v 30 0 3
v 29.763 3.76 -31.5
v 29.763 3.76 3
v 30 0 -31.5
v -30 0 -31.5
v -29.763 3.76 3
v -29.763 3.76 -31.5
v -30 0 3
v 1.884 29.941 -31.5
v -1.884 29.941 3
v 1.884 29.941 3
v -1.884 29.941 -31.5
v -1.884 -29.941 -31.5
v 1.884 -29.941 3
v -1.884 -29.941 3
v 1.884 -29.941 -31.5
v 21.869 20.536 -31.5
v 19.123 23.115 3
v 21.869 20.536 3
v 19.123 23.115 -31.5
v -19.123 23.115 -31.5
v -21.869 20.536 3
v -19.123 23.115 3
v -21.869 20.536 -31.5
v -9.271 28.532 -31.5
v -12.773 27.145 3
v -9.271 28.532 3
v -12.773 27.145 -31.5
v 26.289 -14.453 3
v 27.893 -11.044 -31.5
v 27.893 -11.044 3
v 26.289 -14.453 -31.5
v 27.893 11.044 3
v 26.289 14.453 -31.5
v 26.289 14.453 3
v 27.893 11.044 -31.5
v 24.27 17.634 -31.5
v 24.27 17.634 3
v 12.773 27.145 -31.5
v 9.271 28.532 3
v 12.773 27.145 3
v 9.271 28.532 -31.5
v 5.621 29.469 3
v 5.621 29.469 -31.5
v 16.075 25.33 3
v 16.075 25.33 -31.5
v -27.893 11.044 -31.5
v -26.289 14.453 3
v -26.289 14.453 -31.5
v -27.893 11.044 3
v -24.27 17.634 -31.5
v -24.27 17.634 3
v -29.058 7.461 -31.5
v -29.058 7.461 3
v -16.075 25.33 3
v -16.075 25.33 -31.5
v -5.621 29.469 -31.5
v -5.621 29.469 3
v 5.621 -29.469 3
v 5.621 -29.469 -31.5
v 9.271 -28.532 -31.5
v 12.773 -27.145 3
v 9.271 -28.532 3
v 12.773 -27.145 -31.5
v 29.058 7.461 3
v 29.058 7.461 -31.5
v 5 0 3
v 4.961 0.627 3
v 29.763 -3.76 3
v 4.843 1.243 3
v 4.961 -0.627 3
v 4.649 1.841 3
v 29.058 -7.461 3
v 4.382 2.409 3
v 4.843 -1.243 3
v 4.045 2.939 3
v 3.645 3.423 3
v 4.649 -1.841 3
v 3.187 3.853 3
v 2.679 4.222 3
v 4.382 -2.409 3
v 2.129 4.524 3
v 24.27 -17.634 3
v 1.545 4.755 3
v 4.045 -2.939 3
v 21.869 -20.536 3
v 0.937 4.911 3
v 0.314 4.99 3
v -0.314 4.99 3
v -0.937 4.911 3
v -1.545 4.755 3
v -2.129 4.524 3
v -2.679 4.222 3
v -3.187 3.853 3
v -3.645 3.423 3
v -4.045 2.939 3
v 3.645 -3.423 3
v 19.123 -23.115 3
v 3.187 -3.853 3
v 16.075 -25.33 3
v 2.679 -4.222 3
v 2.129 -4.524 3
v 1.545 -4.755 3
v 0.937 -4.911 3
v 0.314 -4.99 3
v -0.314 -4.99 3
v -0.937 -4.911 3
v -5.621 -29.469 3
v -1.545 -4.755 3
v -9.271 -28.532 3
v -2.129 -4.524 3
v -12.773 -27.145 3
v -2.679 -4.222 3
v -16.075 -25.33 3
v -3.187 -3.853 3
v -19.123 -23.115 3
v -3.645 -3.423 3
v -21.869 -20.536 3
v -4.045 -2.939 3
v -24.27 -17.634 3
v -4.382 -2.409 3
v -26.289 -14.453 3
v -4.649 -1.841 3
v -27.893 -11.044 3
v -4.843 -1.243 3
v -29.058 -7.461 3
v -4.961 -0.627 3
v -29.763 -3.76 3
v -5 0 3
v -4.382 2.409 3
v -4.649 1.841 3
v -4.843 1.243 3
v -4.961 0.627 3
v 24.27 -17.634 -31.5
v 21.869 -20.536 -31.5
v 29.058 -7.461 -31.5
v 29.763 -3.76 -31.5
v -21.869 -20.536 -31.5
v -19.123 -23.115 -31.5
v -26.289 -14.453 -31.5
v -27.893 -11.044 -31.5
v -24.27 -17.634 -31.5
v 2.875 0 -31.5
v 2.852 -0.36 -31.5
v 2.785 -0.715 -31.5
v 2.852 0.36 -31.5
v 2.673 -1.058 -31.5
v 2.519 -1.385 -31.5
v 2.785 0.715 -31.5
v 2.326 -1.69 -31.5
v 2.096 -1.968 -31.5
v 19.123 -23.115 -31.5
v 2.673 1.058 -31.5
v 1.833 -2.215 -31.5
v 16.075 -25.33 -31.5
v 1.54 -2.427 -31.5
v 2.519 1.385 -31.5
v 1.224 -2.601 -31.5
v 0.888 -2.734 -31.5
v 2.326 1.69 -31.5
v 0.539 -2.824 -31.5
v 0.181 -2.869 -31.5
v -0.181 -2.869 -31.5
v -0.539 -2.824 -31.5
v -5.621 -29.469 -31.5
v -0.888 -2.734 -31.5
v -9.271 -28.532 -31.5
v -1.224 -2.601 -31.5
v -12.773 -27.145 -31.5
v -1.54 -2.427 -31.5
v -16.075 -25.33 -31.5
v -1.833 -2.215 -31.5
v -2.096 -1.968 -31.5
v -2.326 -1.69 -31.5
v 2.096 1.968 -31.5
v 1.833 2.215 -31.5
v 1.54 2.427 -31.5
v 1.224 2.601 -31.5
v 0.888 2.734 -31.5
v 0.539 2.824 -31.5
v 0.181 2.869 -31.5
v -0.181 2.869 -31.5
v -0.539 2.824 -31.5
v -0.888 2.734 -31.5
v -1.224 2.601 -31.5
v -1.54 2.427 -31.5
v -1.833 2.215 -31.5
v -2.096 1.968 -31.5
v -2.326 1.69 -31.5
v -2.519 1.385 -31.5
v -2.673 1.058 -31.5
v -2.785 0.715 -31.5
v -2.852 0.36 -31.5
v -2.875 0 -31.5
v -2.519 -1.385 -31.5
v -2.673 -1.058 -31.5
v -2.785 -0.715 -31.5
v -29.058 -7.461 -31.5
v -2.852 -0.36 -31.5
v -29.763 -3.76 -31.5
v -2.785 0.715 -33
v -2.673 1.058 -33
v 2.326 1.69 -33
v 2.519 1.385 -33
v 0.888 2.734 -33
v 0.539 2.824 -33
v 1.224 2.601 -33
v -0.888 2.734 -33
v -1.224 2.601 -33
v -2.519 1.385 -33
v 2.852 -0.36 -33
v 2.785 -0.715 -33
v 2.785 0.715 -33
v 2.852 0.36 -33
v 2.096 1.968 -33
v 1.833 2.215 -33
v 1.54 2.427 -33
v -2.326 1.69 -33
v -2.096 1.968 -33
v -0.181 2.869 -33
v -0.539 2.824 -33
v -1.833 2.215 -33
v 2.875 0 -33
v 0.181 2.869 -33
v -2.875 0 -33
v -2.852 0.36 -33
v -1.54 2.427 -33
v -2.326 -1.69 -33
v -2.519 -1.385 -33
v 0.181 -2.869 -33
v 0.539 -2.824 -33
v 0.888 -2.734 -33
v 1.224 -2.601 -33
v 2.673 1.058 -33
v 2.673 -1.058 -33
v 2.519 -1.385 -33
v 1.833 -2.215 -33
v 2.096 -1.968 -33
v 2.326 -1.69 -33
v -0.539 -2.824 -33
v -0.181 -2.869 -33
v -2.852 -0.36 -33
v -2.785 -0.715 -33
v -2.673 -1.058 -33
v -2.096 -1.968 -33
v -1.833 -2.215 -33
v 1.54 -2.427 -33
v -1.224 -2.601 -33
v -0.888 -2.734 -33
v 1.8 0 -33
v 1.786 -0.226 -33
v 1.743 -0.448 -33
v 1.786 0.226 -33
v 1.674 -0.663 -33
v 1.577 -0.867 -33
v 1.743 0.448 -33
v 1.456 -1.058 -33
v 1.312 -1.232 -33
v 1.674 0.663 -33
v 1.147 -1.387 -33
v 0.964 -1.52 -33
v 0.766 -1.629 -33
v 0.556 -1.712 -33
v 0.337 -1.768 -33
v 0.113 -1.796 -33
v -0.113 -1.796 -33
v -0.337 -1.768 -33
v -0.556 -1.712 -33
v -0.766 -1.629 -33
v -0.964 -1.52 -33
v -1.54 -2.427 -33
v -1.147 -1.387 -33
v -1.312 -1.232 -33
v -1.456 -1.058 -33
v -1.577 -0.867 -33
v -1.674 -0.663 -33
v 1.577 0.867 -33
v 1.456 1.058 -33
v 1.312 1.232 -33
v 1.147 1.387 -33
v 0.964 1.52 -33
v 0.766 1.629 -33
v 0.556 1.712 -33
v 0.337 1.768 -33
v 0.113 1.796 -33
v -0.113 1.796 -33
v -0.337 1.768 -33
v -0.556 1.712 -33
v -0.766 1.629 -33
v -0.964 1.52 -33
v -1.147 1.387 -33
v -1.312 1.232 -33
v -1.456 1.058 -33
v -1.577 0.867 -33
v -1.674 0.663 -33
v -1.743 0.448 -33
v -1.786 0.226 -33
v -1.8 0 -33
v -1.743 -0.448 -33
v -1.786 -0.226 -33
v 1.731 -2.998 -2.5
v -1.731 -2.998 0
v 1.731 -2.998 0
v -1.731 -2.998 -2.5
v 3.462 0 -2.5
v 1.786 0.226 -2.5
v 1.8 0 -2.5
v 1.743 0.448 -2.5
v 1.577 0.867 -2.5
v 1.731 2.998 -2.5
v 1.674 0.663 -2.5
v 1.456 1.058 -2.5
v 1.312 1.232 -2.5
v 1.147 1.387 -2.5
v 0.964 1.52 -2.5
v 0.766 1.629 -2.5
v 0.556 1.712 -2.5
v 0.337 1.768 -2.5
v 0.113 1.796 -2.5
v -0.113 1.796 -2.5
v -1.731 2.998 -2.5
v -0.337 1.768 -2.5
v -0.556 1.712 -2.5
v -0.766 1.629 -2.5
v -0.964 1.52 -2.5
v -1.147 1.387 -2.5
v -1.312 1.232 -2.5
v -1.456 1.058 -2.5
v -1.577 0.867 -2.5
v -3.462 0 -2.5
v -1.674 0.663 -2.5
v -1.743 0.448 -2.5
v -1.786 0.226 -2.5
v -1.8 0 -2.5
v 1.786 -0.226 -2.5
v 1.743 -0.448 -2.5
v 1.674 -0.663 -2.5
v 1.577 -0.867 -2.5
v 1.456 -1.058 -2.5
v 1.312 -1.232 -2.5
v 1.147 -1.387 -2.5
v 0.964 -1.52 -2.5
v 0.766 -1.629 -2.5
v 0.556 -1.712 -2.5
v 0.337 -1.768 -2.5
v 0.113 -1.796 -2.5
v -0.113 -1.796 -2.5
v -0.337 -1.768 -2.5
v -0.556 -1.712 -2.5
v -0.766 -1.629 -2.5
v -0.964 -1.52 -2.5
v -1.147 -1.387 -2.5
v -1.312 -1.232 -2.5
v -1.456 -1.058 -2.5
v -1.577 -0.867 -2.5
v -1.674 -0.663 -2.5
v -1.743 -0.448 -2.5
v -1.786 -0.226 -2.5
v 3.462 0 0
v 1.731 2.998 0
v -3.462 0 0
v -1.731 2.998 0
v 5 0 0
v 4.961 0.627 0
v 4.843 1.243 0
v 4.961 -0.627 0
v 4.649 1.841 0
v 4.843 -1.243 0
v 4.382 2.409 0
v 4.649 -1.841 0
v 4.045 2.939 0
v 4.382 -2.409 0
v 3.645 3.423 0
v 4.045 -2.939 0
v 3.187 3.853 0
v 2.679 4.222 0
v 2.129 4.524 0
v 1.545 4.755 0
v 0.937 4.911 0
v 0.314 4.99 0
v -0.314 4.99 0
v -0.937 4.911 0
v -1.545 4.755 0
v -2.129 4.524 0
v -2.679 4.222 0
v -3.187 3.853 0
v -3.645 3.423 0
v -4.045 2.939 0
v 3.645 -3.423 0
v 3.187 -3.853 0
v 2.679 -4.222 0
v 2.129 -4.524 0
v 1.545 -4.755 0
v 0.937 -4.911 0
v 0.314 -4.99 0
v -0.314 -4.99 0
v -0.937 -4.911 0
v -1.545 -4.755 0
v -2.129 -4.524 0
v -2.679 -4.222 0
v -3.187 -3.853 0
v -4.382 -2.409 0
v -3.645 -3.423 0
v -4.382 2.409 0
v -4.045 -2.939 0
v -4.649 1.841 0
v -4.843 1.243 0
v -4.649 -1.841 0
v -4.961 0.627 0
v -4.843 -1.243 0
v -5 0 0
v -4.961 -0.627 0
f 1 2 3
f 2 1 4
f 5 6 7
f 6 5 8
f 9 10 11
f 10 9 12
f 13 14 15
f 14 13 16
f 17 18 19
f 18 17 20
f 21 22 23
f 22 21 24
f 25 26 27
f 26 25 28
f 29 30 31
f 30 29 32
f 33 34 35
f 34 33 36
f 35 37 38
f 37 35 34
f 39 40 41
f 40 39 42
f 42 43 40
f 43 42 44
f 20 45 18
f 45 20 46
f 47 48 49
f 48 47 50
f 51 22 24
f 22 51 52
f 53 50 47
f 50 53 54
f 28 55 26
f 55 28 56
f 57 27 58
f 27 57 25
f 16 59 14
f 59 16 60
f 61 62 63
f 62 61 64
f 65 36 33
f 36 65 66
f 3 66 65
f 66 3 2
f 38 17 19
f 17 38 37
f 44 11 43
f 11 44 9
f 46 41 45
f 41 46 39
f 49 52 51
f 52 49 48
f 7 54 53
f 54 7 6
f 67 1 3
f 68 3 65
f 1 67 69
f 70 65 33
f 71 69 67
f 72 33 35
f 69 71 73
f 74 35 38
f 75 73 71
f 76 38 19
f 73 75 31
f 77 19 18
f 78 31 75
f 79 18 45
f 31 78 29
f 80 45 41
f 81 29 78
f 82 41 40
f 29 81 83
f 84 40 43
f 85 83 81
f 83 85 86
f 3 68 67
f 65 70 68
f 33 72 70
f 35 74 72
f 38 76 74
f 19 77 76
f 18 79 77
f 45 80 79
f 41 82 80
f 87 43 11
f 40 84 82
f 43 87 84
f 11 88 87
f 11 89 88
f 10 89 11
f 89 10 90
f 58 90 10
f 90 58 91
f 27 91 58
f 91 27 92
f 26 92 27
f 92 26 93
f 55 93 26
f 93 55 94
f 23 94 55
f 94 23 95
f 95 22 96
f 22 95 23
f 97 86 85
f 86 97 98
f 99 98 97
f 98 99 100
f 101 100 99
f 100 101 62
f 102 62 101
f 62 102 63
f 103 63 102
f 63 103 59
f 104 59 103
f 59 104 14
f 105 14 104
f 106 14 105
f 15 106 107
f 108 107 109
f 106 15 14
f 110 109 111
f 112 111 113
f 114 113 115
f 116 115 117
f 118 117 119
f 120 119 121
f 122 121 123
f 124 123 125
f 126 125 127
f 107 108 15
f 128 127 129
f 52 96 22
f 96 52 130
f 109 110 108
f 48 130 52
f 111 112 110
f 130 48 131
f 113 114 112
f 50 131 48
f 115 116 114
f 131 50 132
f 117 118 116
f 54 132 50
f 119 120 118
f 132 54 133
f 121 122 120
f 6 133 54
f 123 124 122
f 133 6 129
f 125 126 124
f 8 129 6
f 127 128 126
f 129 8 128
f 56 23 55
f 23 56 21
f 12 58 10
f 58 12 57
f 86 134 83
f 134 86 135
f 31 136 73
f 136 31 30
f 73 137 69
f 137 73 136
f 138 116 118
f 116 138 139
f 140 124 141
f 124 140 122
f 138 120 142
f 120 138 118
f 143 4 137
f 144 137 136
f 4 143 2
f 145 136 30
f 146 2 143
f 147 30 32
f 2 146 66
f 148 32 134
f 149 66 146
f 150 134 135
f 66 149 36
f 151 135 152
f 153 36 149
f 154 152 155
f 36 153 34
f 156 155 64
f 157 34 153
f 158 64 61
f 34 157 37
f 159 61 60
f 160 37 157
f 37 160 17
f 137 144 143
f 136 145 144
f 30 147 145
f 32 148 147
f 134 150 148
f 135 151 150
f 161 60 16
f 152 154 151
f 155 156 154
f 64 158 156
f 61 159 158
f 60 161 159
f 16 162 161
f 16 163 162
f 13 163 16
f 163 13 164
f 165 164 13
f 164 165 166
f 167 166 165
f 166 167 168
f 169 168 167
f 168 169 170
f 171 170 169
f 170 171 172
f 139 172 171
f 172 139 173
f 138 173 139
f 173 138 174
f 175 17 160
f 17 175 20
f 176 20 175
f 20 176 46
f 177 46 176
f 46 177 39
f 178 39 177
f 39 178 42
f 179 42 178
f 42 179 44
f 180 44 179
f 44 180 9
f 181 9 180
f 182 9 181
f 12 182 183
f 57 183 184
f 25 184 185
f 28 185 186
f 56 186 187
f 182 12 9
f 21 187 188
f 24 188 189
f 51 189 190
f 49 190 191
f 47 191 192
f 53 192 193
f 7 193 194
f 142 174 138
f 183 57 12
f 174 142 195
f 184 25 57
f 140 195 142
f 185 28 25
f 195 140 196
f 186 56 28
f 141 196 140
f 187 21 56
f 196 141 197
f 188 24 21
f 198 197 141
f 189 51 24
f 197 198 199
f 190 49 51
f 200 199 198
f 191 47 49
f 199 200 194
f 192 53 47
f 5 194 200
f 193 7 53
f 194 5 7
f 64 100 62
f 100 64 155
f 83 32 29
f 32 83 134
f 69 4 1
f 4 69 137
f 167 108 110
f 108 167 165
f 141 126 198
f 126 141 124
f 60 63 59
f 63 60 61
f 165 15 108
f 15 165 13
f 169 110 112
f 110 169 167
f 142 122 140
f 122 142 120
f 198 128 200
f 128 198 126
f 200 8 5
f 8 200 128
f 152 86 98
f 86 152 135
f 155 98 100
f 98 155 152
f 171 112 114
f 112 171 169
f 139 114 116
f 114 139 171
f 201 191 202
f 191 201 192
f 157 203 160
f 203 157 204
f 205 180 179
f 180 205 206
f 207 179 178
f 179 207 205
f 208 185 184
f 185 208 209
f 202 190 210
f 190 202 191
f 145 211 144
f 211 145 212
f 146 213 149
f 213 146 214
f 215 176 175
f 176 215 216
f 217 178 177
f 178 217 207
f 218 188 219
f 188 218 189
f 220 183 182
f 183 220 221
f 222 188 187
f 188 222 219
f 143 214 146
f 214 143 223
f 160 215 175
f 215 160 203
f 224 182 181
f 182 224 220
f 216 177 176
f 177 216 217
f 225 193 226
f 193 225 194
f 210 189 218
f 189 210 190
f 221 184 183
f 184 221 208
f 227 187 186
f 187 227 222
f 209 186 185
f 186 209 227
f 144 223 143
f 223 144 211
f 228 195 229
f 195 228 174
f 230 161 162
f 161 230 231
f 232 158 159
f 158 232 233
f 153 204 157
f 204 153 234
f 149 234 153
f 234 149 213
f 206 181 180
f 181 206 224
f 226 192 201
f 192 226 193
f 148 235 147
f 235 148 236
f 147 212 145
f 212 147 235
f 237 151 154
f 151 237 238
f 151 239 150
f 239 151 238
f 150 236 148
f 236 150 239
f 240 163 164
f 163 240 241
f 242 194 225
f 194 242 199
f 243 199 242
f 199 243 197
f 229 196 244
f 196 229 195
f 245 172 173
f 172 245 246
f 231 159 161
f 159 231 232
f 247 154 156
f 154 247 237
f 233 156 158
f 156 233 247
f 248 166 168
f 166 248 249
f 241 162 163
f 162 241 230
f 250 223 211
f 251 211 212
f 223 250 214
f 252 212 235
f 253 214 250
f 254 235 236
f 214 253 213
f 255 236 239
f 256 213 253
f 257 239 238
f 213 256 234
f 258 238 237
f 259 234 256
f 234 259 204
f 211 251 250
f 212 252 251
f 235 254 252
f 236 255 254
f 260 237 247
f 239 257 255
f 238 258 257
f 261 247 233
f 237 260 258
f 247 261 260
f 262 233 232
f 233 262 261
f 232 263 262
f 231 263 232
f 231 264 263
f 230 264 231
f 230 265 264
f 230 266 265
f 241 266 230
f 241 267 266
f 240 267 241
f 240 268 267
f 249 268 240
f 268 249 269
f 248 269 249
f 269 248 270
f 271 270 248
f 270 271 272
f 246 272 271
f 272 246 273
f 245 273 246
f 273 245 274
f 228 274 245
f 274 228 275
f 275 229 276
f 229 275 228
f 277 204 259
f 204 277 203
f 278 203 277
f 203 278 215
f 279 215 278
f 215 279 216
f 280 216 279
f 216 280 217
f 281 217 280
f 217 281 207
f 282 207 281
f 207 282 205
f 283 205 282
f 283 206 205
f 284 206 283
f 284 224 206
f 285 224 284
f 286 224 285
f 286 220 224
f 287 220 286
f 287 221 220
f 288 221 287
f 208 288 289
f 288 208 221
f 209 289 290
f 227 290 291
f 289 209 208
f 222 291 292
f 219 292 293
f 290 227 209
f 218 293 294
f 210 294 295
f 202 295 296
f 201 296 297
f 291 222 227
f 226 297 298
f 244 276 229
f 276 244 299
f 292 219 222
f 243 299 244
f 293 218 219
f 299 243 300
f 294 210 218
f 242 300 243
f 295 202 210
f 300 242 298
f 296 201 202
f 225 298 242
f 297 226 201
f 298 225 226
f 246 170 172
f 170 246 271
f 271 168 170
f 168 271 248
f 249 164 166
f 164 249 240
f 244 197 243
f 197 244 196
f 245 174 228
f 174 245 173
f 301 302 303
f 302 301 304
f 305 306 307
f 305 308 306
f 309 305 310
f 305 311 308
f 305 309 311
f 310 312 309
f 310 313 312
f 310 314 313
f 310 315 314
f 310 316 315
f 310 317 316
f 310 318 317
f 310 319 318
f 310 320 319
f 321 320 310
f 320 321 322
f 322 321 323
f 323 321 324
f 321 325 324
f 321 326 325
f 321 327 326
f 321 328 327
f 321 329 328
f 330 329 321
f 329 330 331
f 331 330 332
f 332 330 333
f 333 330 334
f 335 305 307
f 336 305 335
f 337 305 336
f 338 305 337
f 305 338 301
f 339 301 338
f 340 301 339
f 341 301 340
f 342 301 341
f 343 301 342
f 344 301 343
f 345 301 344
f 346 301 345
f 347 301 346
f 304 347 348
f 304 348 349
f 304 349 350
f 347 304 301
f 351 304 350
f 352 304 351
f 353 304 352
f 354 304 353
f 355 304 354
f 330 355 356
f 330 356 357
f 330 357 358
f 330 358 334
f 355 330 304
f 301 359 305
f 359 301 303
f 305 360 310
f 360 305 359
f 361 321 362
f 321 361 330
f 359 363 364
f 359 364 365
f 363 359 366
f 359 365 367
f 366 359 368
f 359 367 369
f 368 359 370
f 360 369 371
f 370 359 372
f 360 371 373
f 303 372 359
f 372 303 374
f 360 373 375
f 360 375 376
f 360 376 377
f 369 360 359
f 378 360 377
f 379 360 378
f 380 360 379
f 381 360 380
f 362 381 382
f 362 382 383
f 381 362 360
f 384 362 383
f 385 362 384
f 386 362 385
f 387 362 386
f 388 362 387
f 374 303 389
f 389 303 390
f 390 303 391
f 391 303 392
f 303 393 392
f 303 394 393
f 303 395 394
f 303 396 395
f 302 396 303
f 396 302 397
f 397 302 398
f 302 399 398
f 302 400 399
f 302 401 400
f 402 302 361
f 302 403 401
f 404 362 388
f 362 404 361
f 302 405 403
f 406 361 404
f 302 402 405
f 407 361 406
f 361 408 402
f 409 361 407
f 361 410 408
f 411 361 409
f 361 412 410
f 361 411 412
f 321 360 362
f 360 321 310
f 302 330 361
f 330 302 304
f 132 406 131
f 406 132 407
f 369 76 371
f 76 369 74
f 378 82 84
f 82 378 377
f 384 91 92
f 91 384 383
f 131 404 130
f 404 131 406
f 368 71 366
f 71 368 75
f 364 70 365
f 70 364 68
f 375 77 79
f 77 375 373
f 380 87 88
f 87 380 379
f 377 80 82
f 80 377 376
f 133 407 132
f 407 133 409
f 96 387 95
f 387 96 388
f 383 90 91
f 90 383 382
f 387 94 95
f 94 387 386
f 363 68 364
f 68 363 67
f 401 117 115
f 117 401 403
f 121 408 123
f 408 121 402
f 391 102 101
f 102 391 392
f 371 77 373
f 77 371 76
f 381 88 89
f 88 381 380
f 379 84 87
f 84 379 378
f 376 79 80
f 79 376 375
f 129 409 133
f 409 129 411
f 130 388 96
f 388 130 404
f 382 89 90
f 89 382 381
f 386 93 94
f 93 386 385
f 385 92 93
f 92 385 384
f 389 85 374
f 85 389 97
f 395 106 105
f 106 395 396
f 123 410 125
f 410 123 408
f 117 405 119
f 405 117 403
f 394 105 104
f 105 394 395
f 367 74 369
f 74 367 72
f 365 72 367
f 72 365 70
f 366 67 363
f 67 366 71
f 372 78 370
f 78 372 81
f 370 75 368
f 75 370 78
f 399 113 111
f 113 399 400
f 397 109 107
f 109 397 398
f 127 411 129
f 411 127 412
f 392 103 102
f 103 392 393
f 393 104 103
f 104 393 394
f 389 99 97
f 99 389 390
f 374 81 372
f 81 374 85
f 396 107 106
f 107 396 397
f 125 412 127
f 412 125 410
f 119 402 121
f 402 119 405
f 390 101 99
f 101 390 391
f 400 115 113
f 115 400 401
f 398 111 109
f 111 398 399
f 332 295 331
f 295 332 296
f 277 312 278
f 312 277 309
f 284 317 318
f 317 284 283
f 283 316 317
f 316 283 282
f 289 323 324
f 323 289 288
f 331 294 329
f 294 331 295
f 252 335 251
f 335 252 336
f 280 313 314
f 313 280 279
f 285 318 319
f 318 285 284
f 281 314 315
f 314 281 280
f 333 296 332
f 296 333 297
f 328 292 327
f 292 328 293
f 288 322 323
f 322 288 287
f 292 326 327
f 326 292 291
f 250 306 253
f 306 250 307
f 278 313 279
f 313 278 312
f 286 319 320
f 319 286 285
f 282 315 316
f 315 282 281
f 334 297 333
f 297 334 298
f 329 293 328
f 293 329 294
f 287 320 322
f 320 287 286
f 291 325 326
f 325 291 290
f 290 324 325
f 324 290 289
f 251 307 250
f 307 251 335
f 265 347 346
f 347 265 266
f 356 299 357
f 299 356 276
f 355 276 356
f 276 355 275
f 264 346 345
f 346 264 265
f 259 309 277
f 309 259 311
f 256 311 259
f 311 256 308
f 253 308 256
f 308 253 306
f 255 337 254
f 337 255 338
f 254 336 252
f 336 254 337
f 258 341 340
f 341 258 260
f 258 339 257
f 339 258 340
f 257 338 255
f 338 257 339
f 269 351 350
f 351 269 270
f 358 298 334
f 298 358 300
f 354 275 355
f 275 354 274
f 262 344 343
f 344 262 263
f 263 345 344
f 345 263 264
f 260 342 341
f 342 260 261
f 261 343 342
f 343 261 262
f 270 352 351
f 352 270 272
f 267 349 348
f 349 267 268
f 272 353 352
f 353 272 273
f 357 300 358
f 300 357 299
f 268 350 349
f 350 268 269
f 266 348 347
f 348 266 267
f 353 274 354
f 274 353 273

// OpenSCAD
$fn = 50;

difference() {
	union() {
		translate(v = [0, 0, -31.5]) {
			cylinder(h = 34.5, r = 30.0);
		}
		#translate(v = [0, 0, -33.0]) {
			cylinder(h = 33, r = 2.875);
		}
	}
	union() {
		translate(v = [0, 0, 0]) {
			rotate(a = [0, 0, 0]) {
				difference() {
					union() {
						translate(v = [0, 0, -2.5]) {
							linear_extrude(height = 2.5) {
								polygon(points = [[3.4619999999999997, 0.0], [1.7310000000000003, 2.9981799479017264], [-1.7309999999999992, 2.9981799479017264], [-3.4619999999999997, 4.2397272186481365e-16], [-1.7310000000000014, -2.998179947901726], [1.7309999999999977, -2.9981799479017277]]);
							}
						}
					}
					union();
				}
			}
		}
		#cylinder(h = 3, r = 5.0);
		#translate(v = [0, 0, -100.0]) {
			cylinder(h = 200, r = 1.8);
		}
	}
}
